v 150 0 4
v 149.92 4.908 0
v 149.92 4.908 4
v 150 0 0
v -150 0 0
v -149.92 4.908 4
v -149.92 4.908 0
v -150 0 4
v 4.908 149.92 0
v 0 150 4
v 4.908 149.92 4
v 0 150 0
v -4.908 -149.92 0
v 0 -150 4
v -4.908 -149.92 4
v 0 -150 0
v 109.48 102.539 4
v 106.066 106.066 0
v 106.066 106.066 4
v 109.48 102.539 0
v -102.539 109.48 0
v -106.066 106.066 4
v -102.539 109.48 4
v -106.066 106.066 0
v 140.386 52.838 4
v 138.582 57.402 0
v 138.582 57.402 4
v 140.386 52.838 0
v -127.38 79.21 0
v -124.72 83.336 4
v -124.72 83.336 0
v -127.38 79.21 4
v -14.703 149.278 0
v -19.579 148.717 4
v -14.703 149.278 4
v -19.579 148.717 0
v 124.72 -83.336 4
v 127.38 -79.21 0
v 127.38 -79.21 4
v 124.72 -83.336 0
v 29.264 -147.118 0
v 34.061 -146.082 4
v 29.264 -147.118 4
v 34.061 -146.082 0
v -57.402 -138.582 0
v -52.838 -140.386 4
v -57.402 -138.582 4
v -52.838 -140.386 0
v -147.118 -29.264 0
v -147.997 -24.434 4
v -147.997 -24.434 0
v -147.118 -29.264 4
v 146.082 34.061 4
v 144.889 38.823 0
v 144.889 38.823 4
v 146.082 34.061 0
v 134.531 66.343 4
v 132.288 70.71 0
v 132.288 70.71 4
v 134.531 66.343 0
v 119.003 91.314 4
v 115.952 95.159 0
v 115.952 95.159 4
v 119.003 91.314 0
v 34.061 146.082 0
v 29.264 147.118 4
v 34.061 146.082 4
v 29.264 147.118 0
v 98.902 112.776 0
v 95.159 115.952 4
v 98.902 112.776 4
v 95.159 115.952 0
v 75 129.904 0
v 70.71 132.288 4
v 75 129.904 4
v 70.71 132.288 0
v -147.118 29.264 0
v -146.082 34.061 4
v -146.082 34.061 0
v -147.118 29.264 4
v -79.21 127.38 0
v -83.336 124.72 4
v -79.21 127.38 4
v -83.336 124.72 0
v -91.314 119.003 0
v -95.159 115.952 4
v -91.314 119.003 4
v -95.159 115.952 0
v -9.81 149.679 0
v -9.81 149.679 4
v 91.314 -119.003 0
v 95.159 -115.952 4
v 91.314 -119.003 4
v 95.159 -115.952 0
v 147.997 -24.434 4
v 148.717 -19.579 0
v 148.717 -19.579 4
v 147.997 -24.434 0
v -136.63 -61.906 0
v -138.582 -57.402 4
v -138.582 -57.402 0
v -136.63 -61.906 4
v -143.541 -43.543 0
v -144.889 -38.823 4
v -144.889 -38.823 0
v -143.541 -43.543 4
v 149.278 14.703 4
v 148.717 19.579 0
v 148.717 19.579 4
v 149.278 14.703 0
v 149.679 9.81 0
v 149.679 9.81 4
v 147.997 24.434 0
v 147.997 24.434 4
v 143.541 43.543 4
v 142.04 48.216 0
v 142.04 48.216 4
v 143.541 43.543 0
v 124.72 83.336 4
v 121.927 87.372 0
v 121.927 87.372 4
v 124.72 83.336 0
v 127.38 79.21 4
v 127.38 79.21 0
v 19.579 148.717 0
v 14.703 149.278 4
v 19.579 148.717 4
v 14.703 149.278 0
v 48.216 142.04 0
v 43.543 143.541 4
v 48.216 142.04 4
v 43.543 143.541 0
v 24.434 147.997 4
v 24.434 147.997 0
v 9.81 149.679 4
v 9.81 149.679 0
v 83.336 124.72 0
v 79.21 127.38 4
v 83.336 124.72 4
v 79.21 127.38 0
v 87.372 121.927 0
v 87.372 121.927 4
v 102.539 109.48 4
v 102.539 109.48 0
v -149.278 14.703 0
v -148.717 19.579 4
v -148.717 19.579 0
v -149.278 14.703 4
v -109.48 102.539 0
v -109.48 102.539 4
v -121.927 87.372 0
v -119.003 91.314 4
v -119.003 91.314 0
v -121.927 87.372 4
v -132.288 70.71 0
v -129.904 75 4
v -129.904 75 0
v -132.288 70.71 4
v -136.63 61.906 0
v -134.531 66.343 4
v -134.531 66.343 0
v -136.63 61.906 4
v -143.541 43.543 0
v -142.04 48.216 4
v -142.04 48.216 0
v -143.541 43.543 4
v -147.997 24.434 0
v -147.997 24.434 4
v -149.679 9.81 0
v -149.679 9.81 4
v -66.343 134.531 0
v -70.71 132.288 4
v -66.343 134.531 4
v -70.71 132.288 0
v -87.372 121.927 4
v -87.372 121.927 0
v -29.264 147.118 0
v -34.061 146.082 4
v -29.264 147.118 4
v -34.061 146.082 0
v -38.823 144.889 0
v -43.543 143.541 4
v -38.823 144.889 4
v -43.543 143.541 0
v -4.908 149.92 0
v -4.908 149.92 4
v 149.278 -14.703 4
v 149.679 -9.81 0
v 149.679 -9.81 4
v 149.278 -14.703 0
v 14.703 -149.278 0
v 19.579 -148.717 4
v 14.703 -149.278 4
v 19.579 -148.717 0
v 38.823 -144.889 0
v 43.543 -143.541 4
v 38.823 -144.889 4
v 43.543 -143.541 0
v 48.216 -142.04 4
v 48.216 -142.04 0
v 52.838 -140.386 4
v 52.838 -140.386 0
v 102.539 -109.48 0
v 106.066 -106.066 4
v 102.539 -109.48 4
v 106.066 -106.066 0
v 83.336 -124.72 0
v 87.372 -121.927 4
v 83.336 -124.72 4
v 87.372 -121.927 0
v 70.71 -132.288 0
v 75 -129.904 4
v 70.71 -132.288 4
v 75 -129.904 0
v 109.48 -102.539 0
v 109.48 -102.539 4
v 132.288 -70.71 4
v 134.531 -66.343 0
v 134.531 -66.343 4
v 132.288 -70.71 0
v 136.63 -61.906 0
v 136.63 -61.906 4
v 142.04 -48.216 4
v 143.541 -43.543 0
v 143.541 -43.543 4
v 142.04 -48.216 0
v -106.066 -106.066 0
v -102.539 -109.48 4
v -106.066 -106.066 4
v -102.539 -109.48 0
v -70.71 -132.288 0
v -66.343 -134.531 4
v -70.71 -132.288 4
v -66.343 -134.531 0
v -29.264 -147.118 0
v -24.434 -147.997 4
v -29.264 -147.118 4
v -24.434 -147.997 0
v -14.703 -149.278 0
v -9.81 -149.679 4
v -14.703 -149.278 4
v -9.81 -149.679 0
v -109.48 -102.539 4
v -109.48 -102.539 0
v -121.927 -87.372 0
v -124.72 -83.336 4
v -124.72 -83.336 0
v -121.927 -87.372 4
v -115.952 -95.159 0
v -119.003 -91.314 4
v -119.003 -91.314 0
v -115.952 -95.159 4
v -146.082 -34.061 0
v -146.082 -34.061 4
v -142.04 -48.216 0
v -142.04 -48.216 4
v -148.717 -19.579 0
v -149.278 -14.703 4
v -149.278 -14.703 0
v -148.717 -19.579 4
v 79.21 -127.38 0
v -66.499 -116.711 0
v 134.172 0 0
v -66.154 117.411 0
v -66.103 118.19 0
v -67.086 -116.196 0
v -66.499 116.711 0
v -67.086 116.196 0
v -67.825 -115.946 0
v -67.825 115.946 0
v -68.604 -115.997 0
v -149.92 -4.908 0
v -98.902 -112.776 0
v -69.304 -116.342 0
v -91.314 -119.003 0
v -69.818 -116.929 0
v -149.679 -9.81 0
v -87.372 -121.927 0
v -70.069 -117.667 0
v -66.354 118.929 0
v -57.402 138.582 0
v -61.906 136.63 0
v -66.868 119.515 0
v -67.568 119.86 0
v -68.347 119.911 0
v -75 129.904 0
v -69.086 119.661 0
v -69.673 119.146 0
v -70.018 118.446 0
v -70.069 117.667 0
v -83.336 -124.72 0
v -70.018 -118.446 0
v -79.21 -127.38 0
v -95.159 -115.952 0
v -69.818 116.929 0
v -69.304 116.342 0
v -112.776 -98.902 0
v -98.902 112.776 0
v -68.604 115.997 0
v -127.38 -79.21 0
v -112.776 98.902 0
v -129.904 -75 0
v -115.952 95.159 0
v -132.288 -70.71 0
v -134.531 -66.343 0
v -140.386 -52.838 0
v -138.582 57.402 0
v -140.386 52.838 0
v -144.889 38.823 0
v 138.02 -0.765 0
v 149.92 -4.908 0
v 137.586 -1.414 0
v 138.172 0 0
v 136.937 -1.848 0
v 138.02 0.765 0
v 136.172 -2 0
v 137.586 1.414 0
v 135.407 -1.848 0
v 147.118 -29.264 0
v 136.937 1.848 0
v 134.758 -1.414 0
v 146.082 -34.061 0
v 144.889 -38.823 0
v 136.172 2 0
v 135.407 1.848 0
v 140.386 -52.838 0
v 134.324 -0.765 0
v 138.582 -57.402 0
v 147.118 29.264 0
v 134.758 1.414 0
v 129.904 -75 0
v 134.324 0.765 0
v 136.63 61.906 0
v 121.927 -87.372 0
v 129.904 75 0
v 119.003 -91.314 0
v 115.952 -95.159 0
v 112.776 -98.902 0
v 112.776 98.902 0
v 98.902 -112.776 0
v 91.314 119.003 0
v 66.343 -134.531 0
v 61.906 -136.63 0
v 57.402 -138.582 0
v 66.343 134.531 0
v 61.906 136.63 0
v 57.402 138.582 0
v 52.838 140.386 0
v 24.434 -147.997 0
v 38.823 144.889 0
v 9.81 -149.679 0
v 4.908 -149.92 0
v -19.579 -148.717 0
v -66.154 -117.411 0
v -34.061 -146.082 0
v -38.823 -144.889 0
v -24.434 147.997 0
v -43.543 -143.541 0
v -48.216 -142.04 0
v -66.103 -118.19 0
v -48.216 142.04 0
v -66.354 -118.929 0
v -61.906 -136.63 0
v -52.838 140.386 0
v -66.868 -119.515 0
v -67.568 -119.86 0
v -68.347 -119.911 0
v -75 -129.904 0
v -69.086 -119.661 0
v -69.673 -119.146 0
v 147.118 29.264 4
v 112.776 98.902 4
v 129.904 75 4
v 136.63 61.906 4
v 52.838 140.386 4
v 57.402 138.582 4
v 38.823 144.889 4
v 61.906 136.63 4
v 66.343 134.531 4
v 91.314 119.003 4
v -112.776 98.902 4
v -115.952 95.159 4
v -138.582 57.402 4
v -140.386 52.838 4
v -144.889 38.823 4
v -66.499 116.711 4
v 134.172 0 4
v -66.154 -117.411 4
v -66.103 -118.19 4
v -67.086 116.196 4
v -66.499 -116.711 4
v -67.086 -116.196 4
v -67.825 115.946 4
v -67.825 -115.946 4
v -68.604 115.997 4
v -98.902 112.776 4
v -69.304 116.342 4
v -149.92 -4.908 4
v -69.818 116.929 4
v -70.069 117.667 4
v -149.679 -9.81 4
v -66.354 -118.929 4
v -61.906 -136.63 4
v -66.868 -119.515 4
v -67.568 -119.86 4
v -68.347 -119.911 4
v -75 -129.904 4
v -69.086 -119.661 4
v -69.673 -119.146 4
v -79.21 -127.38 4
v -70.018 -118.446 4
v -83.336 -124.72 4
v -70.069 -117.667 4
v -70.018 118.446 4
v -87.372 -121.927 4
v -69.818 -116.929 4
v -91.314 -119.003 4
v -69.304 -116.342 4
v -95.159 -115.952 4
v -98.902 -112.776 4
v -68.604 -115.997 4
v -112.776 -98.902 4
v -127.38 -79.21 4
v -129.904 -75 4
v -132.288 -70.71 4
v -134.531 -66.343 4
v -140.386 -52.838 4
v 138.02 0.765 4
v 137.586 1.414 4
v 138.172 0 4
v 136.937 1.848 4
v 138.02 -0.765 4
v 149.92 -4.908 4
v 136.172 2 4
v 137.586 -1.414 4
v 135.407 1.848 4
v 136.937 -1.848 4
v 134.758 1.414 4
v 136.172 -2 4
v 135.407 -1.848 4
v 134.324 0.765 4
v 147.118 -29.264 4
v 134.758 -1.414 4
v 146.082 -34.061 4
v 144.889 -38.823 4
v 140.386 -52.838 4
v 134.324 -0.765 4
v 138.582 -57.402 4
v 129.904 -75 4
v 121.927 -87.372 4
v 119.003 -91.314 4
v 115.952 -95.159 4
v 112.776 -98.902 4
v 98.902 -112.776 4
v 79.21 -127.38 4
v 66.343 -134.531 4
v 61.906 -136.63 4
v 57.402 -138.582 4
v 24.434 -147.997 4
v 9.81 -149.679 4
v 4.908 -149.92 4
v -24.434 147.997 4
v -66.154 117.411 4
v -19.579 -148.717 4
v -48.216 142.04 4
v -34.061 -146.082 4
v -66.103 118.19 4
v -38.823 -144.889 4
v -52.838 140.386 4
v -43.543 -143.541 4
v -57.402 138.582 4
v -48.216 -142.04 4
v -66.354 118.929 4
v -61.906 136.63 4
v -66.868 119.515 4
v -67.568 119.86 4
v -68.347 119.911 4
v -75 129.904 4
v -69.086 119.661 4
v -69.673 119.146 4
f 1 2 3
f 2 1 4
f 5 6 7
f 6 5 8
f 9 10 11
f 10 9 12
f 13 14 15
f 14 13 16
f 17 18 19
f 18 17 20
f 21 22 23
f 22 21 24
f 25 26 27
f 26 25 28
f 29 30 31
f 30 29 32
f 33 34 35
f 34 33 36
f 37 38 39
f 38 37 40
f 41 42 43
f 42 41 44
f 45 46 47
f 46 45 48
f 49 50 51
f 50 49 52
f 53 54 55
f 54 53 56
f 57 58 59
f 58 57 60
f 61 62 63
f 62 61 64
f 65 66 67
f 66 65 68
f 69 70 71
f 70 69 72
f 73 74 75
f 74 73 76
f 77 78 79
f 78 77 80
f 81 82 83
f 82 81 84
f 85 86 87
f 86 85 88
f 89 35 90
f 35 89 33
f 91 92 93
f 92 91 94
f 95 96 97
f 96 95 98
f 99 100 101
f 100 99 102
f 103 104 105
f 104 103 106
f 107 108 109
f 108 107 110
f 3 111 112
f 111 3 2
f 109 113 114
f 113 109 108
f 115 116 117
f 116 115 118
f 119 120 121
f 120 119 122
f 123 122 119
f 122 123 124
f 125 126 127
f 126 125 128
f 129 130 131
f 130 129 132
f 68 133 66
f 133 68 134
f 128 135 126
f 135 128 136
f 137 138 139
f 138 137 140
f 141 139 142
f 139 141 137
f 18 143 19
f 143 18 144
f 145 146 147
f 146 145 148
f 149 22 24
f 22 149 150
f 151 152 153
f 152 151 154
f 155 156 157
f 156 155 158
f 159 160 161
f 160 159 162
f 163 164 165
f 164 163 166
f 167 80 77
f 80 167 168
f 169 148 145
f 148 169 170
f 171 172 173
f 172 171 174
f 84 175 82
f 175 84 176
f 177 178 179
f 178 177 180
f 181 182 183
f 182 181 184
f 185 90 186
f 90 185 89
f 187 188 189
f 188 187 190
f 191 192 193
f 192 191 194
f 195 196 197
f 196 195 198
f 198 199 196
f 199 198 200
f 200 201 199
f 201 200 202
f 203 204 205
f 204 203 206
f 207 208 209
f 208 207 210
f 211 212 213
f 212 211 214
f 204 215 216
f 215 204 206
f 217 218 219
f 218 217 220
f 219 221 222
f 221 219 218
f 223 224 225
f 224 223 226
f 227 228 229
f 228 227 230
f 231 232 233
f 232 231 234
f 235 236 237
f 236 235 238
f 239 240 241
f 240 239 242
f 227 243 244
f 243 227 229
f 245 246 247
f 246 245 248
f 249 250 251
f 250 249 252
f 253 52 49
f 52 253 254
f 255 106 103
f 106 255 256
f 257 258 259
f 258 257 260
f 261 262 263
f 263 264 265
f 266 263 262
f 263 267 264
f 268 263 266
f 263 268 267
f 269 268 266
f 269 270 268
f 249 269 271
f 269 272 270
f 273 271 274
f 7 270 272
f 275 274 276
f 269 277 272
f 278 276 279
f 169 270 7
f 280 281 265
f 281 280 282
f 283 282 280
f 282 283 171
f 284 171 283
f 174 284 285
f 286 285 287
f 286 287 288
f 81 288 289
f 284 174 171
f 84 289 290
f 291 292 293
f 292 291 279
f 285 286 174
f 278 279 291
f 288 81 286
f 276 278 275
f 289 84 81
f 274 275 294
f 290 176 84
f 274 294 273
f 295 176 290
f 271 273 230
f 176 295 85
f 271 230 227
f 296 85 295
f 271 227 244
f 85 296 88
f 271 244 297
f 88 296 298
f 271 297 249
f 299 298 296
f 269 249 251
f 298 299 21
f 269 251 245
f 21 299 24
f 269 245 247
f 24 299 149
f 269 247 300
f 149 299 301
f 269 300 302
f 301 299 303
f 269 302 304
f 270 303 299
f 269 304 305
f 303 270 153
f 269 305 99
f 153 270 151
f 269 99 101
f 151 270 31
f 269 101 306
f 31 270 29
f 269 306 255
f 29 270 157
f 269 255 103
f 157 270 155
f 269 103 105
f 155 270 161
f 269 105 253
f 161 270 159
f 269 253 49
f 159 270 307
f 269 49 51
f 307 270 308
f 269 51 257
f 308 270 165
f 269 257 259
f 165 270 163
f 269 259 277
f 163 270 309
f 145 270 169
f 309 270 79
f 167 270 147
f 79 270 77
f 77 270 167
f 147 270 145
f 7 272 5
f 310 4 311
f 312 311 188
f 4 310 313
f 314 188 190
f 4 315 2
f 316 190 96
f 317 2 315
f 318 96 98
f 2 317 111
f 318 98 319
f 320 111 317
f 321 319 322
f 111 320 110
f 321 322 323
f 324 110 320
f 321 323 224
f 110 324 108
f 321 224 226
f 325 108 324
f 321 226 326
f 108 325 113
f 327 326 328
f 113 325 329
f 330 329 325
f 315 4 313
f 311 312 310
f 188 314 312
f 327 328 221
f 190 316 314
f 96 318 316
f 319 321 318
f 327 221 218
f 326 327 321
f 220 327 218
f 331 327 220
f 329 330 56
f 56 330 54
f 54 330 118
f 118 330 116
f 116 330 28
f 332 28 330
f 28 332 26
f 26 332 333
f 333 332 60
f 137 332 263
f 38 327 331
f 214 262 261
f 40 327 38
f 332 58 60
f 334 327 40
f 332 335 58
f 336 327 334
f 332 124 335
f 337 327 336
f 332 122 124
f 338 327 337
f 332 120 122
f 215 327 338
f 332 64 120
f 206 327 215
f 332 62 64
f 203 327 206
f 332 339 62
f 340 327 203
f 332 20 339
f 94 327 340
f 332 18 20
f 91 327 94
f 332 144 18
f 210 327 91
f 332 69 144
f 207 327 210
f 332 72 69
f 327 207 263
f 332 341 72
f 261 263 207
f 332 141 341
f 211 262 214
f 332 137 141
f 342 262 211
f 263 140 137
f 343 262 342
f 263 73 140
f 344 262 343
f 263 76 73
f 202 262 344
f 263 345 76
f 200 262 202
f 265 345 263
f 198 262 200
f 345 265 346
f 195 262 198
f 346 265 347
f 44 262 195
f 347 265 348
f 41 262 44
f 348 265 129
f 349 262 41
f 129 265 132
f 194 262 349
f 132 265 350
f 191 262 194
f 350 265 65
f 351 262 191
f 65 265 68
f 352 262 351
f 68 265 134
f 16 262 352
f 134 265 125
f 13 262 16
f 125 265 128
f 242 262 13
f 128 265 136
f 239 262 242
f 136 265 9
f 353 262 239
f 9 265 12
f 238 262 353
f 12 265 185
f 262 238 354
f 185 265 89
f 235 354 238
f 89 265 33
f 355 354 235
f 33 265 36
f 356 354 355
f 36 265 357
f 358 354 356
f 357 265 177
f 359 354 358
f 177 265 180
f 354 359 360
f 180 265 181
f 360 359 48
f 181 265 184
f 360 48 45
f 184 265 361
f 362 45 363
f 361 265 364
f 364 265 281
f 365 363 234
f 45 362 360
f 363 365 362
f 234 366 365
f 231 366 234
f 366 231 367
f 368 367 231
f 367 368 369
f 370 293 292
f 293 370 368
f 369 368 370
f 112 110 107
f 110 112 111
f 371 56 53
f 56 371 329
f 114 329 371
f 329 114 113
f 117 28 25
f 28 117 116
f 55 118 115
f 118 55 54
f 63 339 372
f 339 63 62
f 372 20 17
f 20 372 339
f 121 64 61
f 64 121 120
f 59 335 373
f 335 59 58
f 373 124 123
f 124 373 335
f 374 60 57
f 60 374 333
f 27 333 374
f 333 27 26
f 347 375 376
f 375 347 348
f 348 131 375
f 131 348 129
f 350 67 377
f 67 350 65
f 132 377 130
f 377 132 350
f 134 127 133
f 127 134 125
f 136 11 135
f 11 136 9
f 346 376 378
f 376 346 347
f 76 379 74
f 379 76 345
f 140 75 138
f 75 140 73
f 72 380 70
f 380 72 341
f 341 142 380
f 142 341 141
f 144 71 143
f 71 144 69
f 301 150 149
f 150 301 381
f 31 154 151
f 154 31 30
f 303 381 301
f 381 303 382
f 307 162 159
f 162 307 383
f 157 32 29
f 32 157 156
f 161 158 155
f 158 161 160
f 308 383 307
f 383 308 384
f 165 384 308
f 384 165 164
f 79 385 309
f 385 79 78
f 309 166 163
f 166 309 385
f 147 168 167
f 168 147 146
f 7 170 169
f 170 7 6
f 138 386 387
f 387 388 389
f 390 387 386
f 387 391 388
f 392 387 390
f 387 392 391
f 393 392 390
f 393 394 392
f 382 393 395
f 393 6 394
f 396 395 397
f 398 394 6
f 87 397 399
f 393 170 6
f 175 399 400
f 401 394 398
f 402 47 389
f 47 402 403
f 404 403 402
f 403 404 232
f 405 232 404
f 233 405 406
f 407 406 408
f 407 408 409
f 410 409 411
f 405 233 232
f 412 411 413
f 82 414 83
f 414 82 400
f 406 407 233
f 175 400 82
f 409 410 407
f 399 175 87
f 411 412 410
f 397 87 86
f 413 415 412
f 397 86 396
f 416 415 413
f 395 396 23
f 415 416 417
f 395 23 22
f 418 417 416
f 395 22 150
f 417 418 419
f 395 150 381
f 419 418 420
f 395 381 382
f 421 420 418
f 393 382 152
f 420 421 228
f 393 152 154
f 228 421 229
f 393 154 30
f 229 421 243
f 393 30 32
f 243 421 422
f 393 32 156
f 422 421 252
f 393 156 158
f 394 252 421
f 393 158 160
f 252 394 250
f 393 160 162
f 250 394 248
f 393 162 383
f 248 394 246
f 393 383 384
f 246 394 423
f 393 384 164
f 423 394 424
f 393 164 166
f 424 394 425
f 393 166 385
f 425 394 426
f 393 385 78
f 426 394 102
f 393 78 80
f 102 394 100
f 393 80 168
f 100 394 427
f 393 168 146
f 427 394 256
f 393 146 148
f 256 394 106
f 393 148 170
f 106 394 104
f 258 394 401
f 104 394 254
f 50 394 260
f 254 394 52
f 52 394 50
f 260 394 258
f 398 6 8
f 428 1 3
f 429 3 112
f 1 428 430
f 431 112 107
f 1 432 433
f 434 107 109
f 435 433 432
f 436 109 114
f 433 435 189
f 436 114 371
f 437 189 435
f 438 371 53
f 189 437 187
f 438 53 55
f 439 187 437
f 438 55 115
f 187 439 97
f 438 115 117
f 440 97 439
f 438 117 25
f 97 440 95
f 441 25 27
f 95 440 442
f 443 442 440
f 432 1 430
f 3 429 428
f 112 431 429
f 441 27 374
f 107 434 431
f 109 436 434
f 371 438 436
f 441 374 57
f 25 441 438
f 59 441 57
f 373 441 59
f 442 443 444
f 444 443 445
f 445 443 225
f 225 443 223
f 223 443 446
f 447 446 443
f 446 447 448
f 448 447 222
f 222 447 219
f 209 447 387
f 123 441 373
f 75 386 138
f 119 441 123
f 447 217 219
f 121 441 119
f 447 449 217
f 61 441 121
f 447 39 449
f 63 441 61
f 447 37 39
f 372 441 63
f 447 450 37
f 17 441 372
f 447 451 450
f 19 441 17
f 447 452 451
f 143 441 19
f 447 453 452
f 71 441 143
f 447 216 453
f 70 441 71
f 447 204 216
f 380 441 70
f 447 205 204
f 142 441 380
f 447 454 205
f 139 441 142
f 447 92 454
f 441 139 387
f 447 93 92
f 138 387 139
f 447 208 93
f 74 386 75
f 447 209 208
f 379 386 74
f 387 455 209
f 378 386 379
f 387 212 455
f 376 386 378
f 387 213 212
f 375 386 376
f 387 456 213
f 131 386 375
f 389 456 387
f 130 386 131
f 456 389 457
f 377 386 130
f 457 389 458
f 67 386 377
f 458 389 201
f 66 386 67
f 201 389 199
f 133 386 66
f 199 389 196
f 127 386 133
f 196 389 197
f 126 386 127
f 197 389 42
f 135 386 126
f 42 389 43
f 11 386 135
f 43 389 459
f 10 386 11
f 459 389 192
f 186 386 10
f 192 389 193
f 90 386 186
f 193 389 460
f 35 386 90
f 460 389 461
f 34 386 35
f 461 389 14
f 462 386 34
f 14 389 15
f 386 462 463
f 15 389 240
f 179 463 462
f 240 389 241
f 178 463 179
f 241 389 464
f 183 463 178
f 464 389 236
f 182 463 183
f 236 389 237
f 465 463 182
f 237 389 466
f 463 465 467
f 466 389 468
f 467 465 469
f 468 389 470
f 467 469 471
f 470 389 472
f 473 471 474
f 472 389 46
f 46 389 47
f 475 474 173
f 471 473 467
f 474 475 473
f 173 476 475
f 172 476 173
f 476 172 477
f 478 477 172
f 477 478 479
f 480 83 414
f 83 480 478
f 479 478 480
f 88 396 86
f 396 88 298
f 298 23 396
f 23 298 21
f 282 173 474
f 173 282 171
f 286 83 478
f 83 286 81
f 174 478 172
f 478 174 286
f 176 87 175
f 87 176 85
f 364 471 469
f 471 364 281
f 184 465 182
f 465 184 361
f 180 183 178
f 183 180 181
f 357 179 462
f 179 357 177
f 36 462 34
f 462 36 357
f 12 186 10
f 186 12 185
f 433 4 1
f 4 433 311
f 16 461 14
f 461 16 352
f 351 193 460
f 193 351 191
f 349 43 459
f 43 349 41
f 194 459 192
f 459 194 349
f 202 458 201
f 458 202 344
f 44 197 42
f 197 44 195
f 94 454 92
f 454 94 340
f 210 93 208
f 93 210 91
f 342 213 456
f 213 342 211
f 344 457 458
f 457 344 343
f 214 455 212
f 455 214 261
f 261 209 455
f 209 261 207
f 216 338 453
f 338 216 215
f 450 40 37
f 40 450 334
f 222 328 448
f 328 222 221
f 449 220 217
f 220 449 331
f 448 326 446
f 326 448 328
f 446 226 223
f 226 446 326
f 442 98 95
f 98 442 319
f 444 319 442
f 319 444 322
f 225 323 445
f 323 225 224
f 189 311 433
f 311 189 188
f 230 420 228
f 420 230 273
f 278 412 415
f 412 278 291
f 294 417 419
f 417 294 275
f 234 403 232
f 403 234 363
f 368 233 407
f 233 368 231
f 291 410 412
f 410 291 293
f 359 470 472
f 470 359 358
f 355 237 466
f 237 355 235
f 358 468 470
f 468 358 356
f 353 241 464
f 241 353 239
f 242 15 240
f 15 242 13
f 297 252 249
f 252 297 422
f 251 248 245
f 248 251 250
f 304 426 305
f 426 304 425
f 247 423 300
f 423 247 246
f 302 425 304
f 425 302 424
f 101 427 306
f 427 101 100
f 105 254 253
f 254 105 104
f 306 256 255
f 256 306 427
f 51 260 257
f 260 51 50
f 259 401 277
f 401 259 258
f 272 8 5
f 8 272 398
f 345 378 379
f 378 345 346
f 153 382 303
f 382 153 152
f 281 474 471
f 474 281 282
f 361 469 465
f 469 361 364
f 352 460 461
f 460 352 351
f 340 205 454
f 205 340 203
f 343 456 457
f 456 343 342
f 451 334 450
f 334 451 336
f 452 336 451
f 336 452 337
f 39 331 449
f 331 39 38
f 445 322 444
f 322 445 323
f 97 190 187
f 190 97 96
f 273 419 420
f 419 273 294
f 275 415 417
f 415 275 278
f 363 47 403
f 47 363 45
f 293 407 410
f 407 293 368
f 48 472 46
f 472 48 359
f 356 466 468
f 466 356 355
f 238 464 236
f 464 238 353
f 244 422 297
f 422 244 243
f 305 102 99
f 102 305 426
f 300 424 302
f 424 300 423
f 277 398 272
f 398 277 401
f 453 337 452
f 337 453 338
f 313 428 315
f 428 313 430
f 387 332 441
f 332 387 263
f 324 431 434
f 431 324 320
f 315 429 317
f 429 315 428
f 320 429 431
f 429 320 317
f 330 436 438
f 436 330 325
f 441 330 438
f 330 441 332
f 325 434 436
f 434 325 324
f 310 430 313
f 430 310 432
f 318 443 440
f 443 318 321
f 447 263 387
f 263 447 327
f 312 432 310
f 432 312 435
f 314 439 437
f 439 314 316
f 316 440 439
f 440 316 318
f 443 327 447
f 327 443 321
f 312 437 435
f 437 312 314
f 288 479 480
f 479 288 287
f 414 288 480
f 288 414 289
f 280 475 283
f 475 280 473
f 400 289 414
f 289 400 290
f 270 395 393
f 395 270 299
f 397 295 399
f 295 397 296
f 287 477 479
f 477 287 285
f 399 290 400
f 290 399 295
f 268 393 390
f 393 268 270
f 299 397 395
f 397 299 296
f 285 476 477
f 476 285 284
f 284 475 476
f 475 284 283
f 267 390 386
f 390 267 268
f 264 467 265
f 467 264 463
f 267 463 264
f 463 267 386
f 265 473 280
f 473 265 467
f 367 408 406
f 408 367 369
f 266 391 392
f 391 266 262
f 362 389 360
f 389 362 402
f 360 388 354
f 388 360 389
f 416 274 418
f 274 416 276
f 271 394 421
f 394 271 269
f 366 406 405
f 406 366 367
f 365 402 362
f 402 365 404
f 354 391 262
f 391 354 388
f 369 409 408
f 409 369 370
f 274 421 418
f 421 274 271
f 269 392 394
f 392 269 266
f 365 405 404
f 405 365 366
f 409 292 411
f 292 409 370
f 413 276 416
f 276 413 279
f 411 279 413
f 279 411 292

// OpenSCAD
// file: ../../conf/printer_config.scad
/**********************************************************************************************************************
 **
 ** conf/printer_config.scad
 **
 ** This file contains the main control variables that determine the size and shape of the printer. Note that in the
 ** actual parts specifications, the constants defined here will only ever be accessed through functions defined in
 ** conf/derived_sizes.scad exclusively to allow for easier adaptation, should the mode of calculation change. 
 **
 ** All sizes in mm. Caution: Little to no cross-checking is implemented. Change values sensibly and one at a time.
 **
 ** This file is NOT to be included by any other file except for conf/derived_sizes.scad.
 **
 **********************************************************************************************************************/

include <constants.scad>

// ===== PRINTER CONFIGURATION ========================================================================================

// The length of the vertical MakerSlide extrusions that make up the rails for the carriages.
FRAME_V_RAIL_HEIGHT = 800;

// The length of the horizontal 20x20 V-Slot extrusions that form the sides of the triangle.
FRAME_H_RAIL_LENGTH = 400;

// ===== FABRICATED PART DIMENSIONS ===================================================================================

// The additional clearance to leave around the MakerSlide extrusion.
MAKERSLIDE_CLEARANCE = 0.05;

// The thickness of the walls outside the extruded parts.
FRAME_PART_WALL_THICKNESS = 3;

// The thickness of the wall that separates the vertical rails from the horizontal extrusions.
FRAME_V_H_RAIL_SEPARATION = 8;

// The depth of the holes that hold the V-Slot extrusions.
FRAME_PART_VSLOT_DEPTH = 30;

// Whether to use a horizontal rail at the base of the printer or not.
FRAME_HORIZONTAL_BASE_RAIL = false;

// The depth of the holes in the foot that hold the MakerSlide extrusions. This is for the foot version that holds
// a horizontal rail.
FRAME_FOOT_RAIL_MAKERSLIDE_DEPTH = 25; 

// The depth of the holes in the foot that hold the MakerSlide extrusions. This is for the foot version that does not
// hold a horizontal rail.
FRAME_FOOT_NORAIL_MAKERSLIDE_DEPTH = 17.5; 

// The size of the screws that can be used to mount the foot to the underlying surface.
FRAME_FOOT_BOTTOM_SCREW_SIZE = M5;

// The height of the bracket that holds the motor. WARNING: Increasing this might make it difficult to 
// turn the screws that hold the motor.
FRAME_MOTOR_BRACKET_HEIGHT = 25;

// The height of the bracket that holds the intermediate level with the working surface (print bed).
FRAME_BED_BRACKET_HEIGHT = 25; 

// The depth of the holes in the head that hold the MakerSlide extrusions.
FRAME_HEAD_MAKERSLIDE_DEPTH = 35; 

// The thickness of the carriage base plate. A thicker plate will make the carriage stiffer, but cost more
// material to print and take away space from the working area.
CARRIAGE_PLATE_THICKNESS = 6;

// The width of the border around the holes in the carriage base plate that hold the V-Wheels. 
CARRIAGE_PLATE_BORDER_WIDTH = 8;

// The range by which the vertical belt tensioner can be adjusted.
TENSIONER_RANGE = 15;

// The distance between the rods that hold the effector.
ROD_DISTANCE = 65;

// The outer diameter of the rods.
ROD_OUTER_DIAMETER = 6;

// The inner diameter of the rods. Set to 0 if the rods are not hollow.
ROD_INNER_DIAMETER = 4;

// The additional clearance to leave between the rod and the holder.
ROD_CLEARANCE = 0.05;

// The thickness of the outer wall around the rod.
ROD_HOLDER_WALL_THICKNESS = 2;

// The depth of the insets that hold the rods.
ROD_HOLDER_DEPTH = 10;

// The minimum angle of the arms.
ROD_MIN_ANGLE = 20;

// The factor used to round up the rod length.
ROD_ROUND_UP_TO = 5;

// The thickness of the magnet holder arms.
MAGNET_HOLDER_THICKNESS = 5;

// The additional clearance to leave around the magnet holder pin.
MAGNET_CLEARANCE = 0.025;

// The upward angle of the ball holder on the carriage.
CARRIAGE_BALL_HOLDER_ANGLE = 10;

// The additional distance between the magnets on the effector (not the rod distance - the other one :-)).
// This value is added to the minimum distance determined by the magnet size and wall thickness.
EFFECTOR_BALL_ADDITIONAL_DISTANCE = 15;

// The thickness of the effector plate.
EFFECTOR_THICKNESS = 8;

// The thickness of the plate that serves as the heated bed.
BED_THICKNESS = 4;

// The diameter of the plate that serves as the heated bed.
BED_DIAMETER = 300;
// file: ../../conf/constants.scad
/**********************************************************************************************************************
 **
 ** conf/constants.scad
 **
 ** This file contains constants and aliases used for the part size definitions.
 **
 **********************************************************************************************************************/

/**
 * The alias names for the rails.
 * A is the "front left" rail, B the "front right" rail, C the back rail.
 * These constants are also used for the sides of the frame and the effector; in this case, side A is the one 
 * opposing rail A.
 */
A = 0;
B = 1;
C = 2;

/**
 * Aliases for metric screw/nut sizes.
 */
M2 = 2;
M3 = 3;
M4 = 4;
M5 = 5;
M8 = 8;

/** 
 * Aliases for NEMA stepper motors.
 */
NEMA14 = 14;
NEMA17 = 17;
NEMA23 = 23;
// file: ../../bom/bom.scad
/**********************************************************************************************************************
 **
 ** bom/bom.scad
 **
 ** This file provides the functions to generate a basic bill of materials (BOM) from the model.
 **
 **********************************************************************************************************************/

/**
 * A recursive function to format the parent module hierarchy as a series of delimited sub-strings.
 * Example: "vertical_axis_assembly>_vertical_axis_assembly>makerslide_vertical_rail"
 */
function _bom_parent_list(level, delimiter = ">") = 
	(level < $parent_modules - 1) ? str(_bom_parent_list(level = level + 1), delimiter, parent_module(level)) : "";

module bom_entry(description = "", size = "", number = 1) {
	// Only perform any actions if WRITE_BOM is set. This is done through the command line - see Makefile.
	if (WRITE_BOM) {
		echo(str("BOM;", description, ";", size, ";", number, ";", _bom_parent_list(level = 2)));
	}
}
// file: ../../conf/colors.scad
/**********************************************************************************************************************
 **
 ** conf/colors.scad
 **
 ** This file defines some modules to use symbolic colors throughout the entire project.
 **
 **********************************************************************************************************************/

/**
 * The color of the aluminium extrusions.
 */
module color_extrusion() {
	color("LightGrey")
		children();
} 

/**
 * The color of the "outer" printed frame elements.
 */
module color_printed_outer_frame() {
	color("RoyalBlue")
		children();
} 

/**
 * The color of the "inner" printed frame elements.
 */
module color_printed_inner_frame() {
	color("DodgerBlue")
		children();
} 

/**
 * The color of the printed carriages.
 */
module color_printed_carriage() {
	color("DodgerBlue")
		children();
} 

/**
 * The color of the printed tensioners.
 */
module color_printed_tensioner() {
	color("PowderBlue")
		children();
} 

/**
 * The color of the stock hardware parts like nuts, bolts and screws.
 */
module color_hardware() {
	color("DarkSlateGray")
		children();
} 

/**
 * The color of the gears and ball bearings.
 */
module color_gears() {
	color("Gray")
		children();
} 

/**
 * The color of the belts.
 */
module color_belt() {
	color("SaddleBrown")
		children();
} 

/**
 * The color of the stepper motors.
 */
module color_motor() {
	color("DimGray")
		children();
} 

/**
 * The color of the end switches.
 */
module color_switch() {
	color([0.15, 0.15, 0.15])
		children();
} 

/**
 * The color of the V-Wheels.
 */
module color_vwheels() {
	color([0.075, 0.075, 0.075])
		children();
} 

/**
 * The color of punches and other objects that are usually not intended to be rendered as such, but rather to be
 * used as subtractive objects.
 */
module color_punch() {
	color("Red")
		children();
} 
// main file
/**********************************************************************************************************************
 **
 ** parts/sheets/bed.scad
 **
 ** This file generates the heated bed with the holes for the mounting assembly.
 ** This file is intended to be included by other files down the line.
 **
 **********************************************************************************************************************/

include <../../conf/colors.scad>
include <../../conf/derived_sizes.scad>
include <../../conf/part_sizes.scad>

use <../../bom/bom.scad>

/**
 * Provides the pre-rendered bed plate. It will be centerd at the origin and wjust needs to be raised into positive Z
 * appropriately.
 */
module bed_plate() {
	bom_entry(section = "Sheet / Cast Aluminium", 
		      description = "Bed Plate", 
		      size = str("d = ", bed_diameter(), " mm, h = ", bed_thickness(), " mm"));
	color_cast_aluminium()
		import(file = "bed.stl"); 
}

module _bed_plate_mounting_hole() {
	translate([bed_center_hole_distance(), 0, -epsilon()])
		cylinder(d = bed_mounting_hole_size(), h = bed_thickness() + 2 * epsilon(), $fn = bed_mounting_hole_resolution());
	// TODO the hole should be countersunk
}

/** 
 * Renders the bed plate. This module is not intended to be called outside of this file.
 */
module _render_bed_plate() {
	difference() {
		// the base plate
		cylinder(d = bed_diameter(), h = bed_thickness(), $fn = 192);
		// minus the mounting holes
		rotate([0, 0, 0])
			_bed_plate_mounting_hole();
		rotate([0, 0, 120])
			_bed_plate_mounting_hole();
		rotate([0, 0, 240])
			_bed_plate_mounting_hole();
	}
}

_render_bed_plate();
